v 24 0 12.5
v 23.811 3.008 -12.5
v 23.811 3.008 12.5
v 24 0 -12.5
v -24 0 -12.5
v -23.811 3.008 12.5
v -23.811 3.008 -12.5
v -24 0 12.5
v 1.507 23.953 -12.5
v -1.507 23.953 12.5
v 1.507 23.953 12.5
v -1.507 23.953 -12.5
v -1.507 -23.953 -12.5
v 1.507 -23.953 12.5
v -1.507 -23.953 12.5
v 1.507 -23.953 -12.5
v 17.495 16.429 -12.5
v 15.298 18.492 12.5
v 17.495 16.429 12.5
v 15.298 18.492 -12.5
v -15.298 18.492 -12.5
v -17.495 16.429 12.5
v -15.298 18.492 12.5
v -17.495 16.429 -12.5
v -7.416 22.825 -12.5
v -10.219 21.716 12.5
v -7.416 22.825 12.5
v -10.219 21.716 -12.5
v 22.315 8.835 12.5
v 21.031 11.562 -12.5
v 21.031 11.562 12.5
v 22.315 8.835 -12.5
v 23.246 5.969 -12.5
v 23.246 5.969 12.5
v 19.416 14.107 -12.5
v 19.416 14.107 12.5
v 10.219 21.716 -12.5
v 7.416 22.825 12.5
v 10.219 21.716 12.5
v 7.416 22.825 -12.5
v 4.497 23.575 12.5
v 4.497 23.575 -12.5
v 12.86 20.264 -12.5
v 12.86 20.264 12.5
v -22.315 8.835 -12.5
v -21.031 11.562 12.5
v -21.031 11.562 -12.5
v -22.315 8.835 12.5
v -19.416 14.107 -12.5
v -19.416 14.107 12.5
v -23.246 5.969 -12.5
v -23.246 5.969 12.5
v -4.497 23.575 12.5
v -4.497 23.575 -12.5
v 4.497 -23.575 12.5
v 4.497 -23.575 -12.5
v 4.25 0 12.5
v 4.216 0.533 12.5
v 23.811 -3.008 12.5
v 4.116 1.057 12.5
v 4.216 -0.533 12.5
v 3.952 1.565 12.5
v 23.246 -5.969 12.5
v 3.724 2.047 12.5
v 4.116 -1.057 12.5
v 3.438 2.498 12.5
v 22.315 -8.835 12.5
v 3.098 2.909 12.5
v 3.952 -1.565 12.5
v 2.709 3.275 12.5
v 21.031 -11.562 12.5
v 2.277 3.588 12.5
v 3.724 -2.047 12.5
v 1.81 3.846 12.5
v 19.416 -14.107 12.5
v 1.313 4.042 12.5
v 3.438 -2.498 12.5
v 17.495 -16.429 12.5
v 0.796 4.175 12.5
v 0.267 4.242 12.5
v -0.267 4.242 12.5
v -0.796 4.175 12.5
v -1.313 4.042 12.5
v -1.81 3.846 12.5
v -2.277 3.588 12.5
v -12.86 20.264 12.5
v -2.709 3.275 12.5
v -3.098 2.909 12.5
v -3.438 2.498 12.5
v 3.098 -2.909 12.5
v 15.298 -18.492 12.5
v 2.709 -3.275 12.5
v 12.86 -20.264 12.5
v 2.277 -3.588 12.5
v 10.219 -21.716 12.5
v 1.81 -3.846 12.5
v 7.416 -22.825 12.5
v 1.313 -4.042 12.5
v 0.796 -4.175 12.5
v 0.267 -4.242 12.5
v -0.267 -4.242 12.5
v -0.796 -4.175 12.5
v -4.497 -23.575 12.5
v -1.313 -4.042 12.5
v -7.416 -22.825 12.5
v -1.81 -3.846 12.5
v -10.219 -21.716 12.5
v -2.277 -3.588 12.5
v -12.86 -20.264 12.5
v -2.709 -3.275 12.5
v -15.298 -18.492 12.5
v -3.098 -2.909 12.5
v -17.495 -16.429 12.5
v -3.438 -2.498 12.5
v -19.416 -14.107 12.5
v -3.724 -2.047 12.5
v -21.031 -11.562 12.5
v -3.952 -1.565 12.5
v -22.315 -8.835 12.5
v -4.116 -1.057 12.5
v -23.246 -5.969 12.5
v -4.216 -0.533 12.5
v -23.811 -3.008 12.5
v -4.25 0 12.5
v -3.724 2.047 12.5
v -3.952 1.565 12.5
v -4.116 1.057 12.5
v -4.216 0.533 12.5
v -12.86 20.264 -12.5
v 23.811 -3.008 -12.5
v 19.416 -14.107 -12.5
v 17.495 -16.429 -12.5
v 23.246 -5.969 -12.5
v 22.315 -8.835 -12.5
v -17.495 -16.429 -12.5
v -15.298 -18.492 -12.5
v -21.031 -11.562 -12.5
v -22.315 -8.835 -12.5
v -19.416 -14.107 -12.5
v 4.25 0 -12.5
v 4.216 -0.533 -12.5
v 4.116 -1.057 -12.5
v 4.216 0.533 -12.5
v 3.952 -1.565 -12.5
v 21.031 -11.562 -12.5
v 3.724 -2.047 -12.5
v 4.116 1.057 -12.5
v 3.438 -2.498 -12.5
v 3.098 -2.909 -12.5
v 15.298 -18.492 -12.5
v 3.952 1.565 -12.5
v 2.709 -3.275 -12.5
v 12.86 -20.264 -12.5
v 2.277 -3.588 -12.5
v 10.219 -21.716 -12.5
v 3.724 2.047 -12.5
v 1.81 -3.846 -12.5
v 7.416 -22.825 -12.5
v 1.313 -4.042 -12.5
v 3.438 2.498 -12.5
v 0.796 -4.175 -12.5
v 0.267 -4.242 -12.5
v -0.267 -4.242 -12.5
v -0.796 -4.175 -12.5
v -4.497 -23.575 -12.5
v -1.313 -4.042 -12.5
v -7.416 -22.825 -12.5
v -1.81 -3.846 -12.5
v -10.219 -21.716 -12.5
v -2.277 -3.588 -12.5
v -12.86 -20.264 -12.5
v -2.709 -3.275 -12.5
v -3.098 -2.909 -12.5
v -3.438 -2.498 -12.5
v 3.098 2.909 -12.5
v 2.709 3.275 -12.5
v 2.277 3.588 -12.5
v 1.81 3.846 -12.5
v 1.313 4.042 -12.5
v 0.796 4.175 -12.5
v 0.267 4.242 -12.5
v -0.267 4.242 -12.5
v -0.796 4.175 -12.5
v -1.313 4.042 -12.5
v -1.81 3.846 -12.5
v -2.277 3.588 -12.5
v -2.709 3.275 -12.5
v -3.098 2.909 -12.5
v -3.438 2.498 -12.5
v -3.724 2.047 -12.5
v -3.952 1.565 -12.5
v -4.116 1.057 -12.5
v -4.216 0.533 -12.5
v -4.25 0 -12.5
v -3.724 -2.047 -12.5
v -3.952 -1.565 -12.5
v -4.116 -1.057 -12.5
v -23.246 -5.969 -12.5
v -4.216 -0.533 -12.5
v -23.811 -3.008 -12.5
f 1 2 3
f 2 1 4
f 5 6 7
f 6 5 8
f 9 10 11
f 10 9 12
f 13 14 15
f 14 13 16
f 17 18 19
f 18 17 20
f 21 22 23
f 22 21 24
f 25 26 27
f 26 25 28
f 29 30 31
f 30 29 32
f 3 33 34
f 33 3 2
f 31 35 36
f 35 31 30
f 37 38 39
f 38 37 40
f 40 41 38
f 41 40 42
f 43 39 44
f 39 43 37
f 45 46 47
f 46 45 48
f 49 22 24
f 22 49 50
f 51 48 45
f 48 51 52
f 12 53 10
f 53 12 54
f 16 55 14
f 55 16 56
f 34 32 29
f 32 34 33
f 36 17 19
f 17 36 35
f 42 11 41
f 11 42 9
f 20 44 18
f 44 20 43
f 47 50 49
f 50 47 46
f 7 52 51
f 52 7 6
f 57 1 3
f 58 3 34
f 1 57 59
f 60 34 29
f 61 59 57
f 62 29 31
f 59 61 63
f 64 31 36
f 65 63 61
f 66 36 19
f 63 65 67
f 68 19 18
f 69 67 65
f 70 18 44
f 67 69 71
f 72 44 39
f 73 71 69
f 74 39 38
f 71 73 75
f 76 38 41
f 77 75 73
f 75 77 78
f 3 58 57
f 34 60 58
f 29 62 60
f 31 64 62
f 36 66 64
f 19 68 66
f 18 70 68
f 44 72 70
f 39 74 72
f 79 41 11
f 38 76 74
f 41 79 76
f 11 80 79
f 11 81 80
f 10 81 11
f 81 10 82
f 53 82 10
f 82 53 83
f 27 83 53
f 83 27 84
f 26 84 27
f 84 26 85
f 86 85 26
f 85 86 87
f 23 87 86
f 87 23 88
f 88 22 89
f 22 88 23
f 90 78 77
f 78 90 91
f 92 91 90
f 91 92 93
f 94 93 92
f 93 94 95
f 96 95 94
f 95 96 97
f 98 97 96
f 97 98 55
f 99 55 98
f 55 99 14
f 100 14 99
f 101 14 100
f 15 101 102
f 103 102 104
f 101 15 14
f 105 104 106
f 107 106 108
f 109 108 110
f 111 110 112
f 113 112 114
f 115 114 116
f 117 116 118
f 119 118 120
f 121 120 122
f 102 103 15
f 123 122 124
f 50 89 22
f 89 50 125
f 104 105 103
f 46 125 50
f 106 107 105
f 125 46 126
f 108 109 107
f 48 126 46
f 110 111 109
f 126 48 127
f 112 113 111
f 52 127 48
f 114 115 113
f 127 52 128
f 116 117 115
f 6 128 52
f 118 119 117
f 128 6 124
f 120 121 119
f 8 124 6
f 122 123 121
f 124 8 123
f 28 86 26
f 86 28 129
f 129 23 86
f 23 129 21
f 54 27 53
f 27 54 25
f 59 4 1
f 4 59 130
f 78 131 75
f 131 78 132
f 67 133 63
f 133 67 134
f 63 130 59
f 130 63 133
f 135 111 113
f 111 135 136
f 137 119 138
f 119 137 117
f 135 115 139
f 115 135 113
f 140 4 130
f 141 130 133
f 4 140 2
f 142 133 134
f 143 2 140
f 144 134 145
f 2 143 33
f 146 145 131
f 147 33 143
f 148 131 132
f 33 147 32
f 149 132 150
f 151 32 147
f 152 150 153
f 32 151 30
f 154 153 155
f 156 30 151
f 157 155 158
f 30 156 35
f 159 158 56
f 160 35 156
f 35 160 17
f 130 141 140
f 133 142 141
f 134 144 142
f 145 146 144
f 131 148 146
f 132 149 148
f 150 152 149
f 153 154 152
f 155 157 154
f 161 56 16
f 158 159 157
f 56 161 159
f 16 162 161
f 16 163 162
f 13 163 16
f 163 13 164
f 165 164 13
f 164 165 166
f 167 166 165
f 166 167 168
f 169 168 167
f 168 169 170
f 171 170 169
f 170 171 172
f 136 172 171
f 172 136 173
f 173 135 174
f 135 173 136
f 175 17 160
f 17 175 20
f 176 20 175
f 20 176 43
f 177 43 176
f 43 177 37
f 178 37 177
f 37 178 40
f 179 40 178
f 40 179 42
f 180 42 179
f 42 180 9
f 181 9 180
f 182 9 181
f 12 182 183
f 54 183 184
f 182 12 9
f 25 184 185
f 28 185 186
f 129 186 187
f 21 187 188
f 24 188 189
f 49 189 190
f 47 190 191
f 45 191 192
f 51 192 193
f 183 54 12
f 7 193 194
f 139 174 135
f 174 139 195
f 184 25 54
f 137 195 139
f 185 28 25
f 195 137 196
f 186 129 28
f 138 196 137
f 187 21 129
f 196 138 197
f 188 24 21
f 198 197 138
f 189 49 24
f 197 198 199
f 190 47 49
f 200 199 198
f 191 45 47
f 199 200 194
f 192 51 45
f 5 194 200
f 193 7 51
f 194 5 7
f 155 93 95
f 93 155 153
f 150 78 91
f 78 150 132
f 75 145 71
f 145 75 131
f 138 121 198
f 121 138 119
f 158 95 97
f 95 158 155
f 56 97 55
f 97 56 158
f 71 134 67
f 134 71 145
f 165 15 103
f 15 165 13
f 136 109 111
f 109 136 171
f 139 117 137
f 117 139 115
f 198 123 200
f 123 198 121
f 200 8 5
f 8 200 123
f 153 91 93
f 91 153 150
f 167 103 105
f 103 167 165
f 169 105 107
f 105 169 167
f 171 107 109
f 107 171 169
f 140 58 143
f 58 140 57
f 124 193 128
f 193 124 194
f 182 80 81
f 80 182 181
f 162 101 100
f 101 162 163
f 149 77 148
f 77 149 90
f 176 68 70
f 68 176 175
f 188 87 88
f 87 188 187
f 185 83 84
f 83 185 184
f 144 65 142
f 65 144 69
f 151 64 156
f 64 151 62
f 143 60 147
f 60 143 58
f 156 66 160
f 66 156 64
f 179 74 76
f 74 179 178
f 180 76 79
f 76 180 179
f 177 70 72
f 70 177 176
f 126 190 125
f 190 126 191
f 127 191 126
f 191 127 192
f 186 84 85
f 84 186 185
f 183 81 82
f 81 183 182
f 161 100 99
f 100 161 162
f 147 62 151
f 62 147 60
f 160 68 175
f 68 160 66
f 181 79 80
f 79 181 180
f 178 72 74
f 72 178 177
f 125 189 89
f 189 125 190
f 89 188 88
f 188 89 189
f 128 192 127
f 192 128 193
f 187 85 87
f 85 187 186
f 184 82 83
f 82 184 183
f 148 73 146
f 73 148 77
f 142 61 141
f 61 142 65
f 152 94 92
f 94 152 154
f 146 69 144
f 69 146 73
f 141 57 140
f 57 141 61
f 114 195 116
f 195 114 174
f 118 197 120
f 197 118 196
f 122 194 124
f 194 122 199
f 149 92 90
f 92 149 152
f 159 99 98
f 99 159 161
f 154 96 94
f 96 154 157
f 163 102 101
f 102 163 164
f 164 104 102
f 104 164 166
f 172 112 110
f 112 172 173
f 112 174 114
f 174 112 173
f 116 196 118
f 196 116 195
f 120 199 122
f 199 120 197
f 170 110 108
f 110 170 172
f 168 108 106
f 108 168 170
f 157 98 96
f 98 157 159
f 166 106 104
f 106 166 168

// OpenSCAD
$fn = 50;


difference() {
	union() {
		translate(v = [0, 0, -12.5000000000]) {
			cylinder(h = 25, r = 24.0000000000);
		}
	}
	union() {
		translate(v = [0, 0, -100.0000000000]) {
			cylinder(h = 200, r = 4.2500000000);
		}
	}
}
